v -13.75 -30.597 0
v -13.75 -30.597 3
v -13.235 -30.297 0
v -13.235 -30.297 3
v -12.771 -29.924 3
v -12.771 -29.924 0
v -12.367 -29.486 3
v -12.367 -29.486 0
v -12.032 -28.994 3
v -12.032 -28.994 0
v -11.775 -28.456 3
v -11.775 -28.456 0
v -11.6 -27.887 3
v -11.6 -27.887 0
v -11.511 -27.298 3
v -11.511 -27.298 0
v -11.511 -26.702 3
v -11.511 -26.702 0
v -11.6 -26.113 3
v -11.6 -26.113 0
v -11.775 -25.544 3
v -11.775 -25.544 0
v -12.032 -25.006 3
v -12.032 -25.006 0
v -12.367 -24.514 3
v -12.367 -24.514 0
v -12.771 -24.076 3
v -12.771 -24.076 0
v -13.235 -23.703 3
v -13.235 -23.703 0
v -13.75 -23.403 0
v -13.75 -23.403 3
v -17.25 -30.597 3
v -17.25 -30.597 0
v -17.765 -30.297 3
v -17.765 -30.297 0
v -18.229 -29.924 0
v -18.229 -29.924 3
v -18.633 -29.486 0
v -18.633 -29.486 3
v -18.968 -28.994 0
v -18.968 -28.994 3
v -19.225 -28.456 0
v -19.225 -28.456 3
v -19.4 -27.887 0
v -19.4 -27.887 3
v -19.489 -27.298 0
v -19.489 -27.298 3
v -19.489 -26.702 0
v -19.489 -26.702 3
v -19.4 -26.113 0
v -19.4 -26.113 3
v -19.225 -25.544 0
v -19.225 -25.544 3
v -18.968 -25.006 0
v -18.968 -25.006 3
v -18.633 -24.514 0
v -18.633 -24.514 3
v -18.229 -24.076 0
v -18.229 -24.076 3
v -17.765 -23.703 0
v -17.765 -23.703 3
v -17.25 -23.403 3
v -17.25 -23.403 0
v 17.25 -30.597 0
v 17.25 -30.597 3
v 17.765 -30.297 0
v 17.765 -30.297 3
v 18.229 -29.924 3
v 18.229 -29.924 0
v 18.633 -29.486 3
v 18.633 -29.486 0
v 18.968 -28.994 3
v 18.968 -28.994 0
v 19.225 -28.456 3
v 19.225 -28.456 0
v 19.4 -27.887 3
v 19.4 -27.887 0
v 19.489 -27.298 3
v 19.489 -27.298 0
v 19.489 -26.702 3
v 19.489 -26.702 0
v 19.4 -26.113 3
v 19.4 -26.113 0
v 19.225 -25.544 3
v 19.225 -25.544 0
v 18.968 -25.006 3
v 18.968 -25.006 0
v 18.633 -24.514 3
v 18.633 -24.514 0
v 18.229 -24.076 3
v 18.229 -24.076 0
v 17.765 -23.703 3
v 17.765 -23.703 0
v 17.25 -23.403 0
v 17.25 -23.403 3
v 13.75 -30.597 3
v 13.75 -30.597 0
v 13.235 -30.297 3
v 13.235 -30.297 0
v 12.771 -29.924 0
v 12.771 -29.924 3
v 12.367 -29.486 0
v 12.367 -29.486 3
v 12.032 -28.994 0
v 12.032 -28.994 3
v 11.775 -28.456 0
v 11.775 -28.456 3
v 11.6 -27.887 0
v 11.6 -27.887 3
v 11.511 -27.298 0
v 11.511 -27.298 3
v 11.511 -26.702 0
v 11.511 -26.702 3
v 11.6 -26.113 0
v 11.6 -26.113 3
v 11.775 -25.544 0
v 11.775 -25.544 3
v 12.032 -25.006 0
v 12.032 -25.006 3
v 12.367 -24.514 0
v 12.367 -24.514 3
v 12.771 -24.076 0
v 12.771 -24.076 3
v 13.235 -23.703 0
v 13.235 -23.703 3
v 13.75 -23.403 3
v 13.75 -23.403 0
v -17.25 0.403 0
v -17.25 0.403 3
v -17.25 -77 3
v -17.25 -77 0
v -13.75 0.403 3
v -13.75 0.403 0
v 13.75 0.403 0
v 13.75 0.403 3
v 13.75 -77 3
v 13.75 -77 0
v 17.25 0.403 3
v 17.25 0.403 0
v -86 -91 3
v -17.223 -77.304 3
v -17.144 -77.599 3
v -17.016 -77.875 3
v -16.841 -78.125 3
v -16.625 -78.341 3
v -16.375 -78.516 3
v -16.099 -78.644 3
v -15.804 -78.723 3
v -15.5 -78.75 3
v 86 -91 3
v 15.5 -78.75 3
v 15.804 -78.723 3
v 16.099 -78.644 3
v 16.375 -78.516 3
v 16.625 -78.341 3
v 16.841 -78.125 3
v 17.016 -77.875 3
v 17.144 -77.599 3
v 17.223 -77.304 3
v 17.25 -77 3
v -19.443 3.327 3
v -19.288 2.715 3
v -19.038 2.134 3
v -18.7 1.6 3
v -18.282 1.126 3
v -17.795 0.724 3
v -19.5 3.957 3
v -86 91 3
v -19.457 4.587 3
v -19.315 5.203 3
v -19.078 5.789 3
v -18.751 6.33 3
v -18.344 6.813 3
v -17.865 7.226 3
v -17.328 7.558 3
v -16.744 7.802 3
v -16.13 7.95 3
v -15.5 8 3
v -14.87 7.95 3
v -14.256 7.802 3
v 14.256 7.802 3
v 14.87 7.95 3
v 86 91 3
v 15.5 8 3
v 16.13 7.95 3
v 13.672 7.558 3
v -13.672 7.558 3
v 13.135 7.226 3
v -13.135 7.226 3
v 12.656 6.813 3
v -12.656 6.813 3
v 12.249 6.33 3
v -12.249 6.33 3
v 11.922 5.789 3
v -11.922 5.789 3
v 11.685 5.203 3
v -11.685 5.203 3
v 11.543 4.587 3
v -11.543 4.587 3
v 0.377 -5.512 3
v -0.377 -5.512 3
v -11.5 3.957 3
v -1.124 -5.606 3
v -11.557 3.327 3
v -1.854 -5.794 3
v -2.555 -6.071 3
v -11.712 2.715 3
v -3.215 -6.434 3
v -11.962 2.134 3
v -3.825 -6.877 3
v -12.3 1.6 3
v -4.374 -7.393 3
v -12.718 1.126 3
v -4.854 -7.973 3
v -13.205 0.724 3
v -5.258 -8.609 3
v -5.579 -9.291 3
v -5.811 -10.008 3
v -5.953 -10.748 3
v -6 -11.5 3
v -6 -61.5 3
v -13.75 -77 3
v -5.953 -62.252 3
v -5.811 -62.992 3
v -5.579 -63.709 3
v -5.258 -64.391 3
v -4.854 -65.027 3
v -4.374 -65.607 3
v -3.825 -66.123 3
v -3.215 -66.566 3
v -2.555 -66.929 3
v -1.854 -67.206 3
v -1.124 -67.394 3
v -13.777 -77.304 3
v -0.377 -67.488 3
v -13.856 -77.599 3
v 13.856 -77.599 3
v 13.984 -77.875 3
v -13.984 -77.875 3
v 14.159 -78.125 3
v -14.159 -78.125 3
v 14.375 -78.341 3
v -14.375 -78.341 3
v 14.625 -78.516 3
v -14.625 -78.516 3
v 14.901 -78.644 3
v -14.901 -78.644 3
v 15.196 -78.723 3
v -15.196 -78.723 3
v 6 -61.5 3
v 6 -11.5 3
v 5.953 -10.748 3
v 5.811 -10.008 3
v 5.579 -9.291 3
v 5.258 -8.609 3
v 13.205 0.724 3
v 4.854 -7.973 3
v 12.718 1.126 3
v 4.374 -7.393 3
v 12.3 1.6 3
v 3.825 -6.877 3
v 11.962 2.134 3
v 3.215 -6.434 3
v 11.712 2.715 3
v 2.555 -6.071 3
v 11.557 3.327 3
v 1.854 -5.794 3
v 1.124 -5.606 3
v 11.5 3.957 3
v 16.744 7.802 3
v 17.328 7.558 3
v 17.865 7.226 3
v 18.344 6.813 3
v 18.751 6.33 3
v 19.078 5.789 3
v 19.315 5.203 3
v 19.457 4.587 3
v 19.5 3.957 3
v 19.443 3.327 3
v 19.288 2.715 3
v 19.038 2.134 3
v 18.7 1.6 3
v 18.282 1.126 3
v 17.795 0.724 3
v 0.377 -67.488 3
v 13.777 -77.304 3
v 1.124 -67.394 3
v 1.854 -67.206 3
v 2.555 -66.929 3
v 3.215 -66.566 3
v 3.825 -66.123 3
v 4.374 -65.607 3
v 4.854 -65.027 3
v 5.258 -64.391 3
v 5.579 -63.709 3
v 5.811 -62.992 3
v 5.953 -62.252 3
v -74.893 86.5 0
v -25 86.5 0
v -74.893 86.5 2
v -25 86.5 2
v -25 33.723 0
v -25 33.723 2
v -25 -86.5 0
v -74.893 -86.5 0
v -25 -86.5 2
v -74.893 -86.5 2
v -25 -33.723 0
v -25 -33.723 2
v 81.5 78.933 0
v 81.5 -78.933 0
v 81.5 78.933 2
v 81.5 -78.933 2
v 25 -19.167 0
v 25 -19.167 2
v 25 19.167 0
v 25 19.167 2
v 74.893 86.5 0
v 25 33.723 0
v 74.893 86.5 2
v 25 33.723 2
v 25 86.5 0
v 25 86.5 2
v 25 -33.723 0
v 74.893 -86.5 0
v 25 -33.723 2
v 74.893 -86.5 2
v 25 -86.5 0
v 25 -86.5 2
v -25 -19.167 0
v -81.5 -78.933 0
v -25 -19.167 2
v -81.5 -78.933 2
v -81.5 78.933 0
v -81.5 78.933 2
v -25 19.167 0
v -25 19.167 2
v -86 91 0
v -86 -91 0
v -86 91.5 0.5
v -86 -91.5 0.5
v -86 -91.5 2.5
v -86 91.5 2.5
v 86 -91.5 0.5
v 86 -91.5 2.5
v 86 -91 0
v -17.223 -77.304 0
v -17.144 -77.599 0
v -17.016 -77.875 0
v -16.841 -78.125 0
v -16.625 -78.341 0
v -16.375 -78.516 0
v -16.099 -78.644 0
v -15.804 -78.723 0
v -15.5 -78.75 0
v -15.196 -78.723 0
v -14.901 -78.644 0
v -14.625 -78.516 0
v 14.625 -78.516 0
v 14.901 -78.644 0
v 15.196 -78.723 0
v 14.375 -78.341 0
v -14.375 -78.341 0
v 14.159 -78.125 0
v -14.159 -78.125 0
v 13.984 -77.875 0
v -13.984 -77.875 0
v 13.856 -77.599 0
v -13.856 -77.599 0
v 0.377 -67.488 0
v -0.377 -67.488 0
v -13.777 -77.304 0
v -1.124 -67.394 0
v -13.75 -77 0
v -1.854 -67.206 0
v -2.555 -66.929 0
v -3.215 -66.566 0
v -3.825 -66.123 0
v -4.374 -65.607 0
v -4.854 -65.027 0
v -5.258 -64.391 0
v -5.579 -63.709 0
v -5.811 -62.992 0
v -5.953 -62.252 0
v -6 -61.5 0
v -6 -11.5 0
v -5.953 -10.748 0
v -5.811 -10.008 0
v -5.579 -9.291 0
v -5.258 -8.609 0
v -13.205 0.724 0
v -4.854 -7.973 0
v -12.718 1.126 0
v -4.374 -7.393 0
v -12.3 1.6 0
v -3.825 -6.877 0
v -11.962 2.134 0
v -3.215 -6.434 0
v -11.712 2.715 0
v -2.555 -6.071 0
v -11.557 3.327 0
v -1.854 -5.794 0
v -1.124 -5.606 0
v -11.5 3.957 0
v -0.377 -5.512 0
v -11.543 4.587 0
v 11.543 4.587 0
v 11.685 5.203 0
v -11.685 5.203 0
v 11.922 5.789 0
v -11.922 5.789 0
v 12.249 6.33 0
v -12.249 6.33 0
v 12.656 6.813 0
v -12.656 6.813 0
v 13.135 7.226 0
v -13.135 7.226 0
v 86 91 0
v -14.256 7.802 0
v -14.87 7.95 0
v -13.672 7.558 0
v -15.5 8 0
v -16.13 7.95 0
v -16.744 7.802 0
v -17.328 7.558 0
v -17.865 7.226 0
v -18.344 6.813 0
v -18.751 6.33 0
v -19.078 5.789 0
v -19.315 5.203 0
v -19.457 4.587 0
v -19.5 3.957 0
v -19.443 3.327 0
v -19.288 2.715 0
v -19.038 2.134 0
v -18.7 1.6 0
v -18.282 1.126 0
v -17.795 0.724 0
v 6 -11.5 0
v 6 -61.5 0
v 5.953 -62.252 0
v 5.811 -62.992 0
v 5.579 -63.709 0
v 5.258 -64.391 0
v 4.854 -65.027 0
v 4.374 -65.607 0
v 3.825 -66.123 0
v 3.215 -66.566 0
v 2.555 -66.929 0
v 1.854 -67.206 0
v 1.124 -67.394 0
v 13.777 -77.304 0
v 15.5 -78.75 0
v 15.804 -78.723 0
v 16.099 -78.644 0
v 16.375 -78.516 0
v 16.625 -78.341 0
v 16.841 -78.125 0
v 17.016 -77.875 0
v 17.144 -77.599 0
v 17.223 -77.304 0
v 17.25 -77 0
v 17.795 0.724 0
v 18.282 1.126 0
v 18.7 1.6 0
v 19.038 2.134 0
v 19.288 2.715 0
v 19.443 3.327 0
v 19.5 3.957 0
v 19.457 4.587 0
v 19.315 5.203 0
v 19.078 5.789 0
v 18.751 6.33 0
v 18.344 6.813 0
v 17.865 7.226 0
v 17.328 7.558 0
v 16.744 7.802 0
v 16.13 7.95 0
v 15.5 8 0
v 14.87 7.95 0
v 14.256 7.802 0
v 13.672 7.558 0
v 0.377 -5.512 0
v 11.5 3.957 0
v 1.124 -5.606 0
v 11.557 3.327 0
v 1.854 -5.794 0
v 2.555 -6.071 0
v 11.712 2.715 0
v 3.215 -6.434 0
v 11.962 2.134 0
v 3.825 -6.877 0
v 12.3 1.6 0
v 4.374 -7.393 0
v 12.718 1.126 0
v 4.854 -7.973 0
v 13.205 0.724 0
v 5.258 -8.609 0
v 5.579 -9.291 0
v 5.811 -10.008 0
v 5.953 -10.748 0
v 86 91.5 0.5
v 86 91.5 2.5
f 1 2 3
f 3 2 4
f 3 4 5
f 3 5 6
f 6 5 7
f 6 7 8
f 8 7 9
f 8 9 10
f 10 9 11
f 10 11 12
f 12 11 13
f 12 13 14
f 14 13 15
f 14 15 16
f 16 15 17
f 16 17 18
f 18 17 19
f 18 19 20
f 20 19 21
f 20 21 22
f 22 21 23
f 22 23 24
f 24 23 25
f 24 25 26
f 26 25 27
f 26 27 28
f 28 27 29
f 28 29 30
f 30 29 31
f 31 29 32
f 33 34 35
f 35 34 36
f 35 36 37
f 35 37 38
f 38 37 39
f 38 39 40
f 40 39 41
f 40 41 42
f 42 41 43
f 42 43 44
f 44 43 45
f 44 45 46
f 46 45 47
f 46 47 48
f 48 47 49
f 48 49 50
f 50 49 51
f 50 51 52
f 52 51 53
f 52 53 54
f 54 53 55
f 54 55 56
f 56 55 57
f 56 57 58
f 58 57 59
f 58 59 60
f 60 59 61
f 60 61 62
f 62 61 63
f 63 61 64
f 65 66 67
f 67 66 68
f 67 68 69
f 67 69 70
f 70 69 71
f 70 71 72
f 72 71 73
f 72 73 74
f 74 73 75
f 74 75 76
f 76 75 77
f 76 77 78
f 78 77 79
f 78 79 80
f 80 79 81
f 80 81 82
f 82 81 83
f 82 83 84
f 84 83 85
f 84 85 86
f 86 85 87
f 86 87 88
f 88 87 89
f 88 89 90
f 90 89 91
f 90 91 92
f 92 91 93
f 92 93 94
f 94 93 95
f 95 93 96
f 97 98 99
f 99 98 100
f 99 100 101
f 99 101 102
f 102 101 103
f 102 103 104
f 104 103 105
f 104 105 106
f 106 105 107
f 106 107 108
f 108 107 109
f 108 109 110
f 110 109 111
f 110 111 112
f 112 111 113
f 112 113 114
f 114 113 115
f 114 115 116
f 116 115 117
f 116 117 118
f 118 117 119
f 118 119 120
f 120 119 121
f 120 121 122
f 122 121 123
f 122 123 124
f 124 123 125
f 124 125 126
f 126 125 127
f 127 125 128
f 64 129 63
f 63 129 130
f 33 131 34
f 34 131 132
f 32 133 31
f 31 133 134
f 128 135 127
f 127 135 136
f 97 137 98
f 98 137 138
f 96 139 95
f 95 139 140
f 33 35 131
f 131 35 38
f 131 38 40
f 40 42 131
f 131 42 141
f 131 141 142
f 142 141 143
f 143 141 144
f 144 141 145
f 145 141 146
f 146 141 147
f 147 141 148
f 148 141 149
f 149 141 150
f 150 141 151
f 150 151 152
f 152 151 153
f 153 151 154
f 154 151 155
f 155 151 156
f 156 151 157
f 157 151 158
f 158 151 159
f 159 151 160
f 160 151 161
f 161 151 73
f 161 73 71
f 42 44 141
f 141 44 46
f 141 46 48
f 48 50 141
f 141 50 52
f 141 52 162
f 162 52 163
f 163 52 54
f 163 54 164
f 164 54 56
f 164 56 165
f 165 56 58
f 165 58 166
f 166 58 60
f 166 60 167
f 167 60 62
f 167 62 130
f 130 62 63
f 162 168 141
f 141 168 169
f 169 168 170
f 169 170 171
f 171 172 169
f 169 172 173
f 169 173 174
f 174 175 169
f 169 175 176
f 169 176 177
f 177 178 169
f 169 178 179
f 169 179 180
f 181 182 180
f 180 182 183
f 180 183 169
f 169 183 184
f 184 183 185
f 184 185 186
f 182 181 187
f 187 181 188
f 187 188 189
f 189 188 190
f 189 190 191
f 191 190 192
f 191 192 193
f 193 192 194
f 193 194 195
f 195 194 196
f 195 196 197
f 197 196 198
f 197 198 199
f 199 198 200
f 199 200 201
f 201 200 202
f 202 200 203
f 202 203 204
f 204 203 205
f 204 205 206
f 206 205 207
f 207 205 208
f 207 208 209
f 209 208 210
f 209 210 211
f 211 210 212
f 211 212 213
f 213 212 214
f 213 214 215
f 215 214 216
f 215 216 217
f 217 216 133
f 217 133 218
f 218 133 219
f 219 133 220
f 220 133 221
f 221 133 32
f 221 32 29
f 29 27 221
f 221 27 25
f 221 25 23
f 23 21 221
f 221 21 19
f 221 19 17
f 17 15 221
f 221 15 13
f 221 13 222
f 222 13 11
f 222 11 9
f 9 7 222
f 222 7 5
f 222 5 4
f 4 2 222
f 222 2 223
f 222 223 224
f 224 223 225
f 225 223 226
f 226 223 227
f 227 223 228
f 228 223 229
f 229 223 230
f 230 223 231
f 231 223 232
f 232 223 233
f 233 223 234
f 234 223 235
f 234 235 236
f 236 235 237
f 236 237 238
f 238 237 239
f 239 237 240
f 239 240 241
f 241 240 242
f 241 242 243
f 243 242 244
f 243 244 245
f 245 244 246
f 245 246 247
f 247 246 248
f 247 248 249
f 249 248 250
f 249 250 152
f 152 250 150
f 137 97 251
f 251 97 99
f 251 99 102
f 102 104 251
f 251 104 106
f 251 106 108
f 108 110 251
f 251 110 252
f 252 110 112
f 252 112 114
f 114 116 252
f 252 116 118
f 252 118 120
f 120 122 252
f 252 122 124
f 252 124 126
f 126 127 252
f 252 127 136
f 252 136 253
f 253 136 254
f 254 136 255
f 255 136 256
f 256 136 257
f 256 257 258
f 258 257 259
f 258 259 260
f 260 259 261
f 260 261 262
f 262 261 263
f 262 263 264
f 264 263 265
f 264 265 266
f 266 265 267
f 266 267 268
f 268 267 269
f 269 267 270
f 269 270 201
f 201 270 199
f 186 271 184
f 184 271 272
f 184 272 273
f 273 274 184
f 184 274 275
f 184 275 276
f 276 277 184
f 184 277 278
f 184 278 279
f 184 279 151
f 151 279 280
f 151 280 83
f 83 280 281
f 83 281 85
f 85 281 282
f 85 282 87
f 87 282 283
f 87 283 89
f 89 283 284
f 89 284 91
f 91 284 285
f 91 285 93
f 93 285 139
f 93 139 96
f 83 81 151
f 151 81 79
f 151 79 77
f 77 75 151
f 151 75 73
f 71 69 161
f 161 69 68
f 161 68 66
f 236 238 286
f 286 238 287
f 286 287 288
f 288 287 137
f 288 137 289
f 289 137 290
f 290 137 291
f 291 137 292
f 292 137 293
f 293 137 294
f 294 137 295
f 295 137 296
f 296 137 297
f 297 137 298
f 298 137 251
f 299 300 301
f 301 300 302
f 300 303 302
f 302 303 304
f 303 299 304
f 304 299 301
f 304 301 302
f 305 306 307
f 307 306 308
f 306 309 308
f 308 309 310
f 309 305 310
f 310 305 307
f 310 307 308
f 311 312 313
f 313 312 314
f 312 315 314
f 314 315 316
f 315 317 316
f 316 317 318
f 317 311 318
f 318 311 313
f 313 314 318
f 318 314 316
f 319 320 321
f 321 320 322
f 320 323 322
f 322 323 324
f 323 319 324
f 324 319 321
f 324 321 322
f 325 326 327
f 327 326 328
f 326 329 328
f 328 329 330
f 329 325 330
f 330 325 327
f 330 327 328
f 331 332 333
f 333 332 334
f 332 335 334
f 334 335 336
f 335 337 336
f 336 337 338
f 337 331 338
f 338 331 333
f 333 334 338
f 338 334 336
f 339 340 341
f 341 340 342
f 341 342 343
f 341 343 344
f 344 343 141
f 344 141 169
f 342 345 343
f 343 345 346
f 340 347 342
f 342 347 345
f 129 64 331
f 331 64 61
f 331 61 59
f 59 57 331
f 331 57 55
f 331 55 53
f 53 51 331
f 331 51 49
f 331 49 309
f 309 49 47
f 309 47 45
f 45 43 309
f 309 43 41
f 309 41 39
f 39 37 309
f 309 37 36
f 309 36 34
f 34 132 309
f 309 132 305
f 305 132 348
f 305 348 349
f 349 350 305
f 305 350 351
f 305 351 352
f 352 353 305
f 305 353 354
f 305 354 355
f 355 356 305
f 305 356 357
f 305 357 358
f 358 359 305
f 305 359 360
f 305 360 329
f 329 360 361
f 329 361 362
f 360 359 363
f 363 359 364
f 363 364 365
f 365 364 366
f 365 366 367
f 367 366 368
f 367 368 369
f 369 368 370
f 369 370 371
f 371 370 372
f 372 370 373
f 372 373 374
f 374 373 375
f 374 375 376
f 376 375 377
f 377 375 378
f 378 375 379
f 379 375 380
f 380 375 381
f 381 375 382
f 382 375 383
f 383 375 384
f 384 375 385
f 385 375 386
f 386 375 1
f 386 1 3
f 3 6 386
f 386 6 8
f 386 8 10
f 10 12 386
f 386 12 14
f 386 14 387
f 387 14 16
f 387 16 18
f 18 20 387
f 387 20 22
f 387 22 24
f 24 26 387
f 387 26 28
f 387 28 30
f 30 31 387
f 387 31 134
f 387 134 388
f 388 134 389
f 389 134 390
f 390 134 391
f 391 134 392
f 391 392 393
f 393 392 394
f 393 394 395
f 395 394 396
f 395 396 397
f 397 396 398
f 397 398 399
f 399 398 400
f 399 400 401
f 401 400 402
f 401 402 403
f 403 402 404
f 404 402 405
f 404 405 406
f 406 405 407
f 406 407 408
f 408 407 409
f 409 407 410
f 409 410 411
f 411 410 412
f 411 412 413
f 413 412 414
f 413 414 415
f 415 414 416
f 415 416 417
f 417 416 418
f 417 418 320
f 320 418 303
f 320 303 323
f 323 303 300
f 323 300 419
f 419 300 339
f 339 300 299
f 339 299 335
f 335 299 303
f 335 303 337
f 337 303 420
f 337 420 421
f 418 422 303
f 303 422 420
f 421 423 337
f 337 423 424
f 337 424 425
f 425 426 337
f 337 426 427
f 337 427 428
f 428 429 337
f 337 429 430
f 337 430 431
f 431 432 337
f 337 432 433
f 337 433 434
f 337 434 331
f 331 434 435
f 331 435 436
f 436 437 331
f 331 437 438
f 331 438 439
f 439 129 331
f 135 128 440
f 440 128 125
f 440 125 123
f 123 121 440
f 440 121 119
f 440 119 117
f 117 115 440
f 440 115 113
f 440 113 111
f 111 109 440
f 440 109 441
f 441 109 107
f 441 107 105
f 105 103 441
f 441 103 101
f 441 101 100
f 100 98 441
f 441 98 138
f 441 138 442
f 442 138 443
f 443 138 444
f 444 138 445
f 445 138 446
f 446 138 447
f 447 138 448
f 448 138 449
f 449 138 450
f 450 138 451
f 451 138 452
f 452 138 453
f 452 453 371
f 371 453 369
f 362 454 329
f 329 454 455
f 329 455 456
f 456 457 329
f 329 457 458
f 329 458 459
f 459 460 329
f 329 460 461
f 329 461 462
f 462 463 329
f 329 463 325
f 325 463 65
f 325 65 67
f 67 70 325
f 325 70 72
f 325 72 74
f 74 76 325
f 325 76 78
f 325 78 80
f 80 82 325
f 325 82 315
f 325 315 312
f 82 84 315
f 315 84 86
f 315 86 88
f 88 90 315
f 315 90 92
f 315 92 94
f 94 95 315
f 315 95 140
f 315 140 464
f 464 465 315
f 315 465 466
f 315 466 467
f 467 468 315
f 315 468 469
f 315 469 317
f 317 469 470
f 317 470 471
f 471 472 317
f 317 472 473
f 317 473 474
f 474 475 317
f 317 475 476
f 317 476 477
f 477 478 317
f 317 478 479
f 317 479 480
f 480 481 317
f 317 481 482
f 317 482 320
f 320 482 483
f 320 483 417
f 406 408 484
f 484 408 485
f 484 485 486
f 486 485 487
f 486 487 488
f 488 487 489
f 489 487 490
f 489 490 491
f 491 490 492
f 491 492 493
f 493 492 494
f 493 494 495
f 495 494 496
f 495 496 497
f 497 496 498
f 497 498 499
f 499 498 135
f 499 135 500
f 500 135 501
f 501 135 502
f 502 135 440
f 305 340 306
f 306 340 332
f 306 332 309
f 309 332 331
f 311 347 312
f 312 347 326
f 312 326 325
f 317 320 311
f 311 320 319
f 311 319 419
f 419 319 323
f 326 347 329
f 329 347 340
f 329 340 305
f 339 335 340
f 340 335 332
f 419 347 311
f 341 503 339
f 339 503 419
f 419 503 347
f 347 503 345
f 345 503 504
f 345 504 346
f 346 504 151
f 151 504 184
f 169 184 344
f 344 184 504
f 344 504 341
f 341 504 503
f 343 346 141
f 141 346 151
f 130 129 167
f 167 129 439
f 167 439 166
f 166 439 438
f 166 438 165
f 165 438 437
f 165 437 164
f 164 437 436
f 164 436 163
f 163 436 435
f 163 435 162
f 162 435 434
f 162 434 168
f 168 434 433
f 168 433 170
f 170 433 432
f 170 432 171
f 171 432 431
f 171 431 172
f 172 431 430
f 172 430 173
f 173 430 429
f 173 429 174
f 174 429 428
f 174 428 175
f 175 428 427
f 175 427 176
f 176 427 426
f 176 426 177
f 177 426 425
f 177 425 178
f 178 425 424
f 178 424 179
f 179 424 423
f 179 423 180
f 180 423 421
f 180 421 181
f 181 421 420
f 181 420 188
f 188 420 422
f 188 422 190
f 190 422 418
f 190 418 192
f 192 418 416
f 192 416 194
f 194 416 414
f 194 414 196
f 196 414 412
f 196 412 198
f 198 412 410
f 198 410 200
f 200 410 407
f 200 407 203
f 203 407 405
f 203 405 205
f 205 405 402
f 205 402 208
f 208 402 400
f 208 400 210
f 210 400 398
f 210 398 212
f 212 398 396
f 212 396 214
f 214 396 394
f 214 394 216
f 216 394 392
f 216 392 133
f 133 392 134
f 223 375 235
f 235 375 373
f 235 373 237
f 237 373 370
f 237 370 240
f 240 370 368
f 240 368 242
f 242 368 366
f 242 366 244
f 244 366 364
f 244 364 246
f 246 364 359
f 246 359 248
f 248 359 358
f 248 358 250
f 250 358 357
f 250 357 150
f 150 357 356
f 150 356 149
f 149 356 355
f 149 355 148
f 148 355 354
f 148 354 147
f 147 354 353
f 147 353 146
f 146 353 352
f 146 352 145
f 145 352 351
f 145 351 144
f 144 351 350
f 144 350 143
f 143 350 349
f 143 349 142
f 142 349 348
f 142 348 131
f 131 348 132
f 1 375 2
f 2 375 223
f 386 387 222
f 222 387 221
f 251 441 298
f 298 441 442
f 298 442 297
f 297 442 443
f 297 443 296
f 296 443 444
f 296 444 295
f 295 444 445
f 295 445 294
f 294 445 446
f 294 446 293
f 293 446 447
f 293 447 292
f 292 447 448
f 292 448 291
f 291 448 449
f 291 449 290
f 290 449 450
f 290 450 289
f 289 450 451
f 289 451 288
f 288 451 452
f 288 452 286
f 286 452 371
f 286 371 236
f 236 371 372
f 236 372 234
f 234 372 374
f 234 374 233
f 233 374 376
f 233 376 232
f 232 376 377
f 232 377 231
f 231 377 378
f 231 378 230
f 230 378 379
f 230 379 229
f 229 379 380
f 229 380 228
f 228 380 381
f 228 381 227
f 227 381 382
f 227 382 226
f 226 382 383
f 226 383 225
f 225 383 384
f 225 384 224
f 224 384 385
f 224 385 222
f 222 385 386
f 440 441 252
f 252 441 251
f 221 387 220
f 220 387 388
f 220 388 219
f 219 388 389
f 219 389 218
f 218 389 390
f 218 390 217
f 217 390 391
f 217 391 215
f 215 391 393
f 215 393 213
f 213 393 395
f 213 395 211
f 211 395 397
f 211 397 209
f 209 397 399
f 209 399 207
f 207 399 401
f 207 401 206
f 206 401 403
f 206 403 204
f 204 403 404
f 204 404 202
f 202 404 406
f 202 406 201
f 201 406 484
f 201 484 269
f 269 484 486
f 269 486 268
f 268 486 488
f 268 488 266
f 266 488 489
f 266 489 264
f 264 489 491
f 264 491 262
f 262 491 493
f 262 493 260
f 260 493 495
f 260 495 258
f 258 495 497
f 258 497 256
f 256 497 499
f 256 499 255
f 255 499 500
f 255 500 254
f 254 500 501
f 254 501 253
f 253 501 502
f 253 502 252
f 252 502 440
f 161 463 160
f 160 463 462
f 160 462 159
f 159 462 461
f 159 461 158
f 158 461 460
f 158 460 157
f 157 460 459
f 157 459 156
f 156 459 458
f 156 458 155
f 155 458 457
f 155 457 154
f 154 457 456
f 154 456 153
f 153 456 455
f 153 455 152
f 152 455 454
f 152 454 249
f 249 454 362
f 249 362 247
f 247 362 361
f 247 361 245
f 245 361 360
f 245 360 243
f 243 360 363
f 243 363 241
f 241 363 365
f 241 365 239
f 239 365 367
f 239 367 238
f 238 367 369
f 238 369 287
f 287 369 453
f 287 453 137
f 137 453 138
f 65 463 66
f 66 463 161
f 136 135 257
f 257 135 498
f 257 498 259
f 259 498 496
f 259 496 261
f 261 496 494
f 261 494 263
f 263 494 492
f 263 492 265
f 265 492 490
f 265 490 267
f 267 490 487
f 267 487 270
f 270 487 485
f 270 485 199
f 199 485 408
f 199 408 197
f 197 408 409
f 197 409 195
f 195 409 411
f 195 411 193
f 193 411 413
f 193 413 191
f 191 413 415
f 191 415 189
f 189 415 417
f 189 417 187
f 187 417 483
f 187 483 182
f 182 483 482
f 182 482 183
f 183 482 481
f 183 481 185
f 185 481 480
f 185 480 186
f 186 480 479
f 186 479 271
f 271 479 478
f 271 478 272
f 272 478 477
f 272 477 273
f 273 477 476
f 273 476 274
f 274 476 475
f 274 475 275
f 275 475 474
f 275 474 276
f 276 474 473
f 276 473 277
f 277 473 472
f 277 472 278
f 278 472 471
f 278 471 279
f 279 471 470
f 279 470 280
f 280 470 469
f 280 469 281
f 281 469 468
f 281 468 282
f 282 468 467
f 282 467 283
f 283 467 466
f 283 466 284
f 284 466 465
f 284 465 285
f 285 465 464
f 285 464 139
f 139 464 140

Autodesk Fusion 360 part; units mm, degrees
sketch "Sketch1" plane through (0, 0, 0) normal (0, 0, 1) x (1, 0, 0)
  line L0 (86.5, 91.5) -> (-86.5, 91.5)
  line L1 (-86.5, 91.5) -> (-86.5, -91.5)
  line L2 (-86.5, -91.5) -> (86.5, -91.5)
  line L3 (86.5, -91.5) -> (86.5, 91.5)
  line L4 (86.5, 91.5) -> (-86.5, -91.5) construction
  line L5 (-86.5, 91.5) -> (86.5, -91.5) construction
  line L6 (0, -91.5) -> (0, -61.5)
  line L7 (15.5, -77) -> (-15.5, -77)
  line L8 (-15.5, -77) -> (-15.5, -46)
  line L9 (-15.5, -46) -> (15.5, -46)
  line L10 (15.5, -46) -> (15.5, -77)
  line L11 (15.5, -77) -> (-15.5, -46) construction
  line L12 (-15.5, -77) -> (15.5, -46) construction
  circle A0 centre (-15.5, -77) radius 1.75
  circle A1 centre (-15.5, -46) radius 1.75
  circle A2 centre (15.5, -46) radius 1.75
  circle A3 centre (15.5, -77) radius 1.75
  line L13 (0, -61.5) -> (0, -11.5)
  line L14 (15.5, -27) -> (-15.5, -27)
  line L15 (-15.5, -27) -> (-15.5, 4)
  line L16 (-15.5, 4) -> (15.5, 4)
  line L17 (15.5, 4) -> (15.5, -27)
  line L18 (15.5, -27) -> (-15.5, 4) construction
  line L19 (-15.5, -27) -> (15.5, 4) construction
  circle A4 centre (-15.5, 4) radius 1.75
  circle A5 centre (15.5, 4) radius 1.75
  circle A6 centre (15.5, -27) radius 1.75
  circle A7 centre (-15.5, -27) radius 1.75
  circle A8 centre (-15.5, 4) radius 4
  circle A9 centre (15.5, 4) radius 4
  circle A10 centre (0, -61.5) radius 6
  circle A11 centre (0, -11.5) radius 6
  line L20 (13.75, 4) -> (17.25, 4)
  line L21 (17.25, 4) -> (17.25, -77)
  line L22 (17.25, -77) -> (13.75, -77)
  line L23 (13.75, -77) -> (13.75, 4)
  line L24 (-13.75, 4) -> (-17.25, 4)
  line L25 (-17.25, 4) -> (-17.25, -77)
  line L26 (-17.25, -77) -> (-13.75, -77)
  line L27 (-13.75, -77) -> (-13.75, 4)
  line L28 (-6, -11.5) -> (6, -11.5)
  line L29 (6, -11.5) -> (6, -61.5)
  line L30 (6, -61.5) -> (-6, -61.5)
  line L31 (-6, -61.5) -> (-6, -11.5)
  line L32 (25, -91.5) -> (-25, -91.5)
  line L33 (-25, -91.5) -> (-25, 91.5)
  line L34 (-25, 91.5) -> (25, 91.5)
  line L35 (25, 91.5) -> (25, -91.5)
  line L36 (25, -91.5) -> (-25, 91.5) construction
  line L37 (-25, -91.5) -> (25, 91.5) construction
  line L38 (-86.5, -91.5) -> (86.5, 91.5)
  line L39 (86.5, 91.5) -> (82.8666, 94.9349)
  line L40 (82.8666, 94.9349) -> (-90.1334, -88.0651)
  line L41 (-90.1334, -88.0651) -> (-86.5, -91.5)
  line L42 (-86.5, -91.5) -> (86.5, 91.5)
  line L43 (86.5, 91.5) -> (90.1334, 88.0651)
  line L44 (90.1334, 88.0651) -> (-82.8666, -94.9349)
  line L45 (-82.8666, -94.9349) -> (-86.5, -91.5)
  line L46 (86.5, -91.5) -> (-86.5, 91.5)
  line L47 (-86.5, 91.5) -> (-82.8666, 94.9349)
  line L48 (-82.8666, 94.9349) -> (90.1334, -88.0651)
  line L49 (90.1334, -88.0651) -> (86.5, -91.5)
  line L50 (86.5, -91.5) -> (-86.5, 91.5)
  line L51 (-86.5, 91.5) -> (-90.1334, 88.0651)
  line L52 (-90.1334, 88.0651) -> (82.8666, -94.9349)
  line L53 (82.8666, -94.9349) -> (86.5, -91.5)
  line L54 (81.5, -86.5) -> (-81.5, -86.5)
  line L55 (-81.5, -86.5) -> (-81.5, 86.5)
  line L56 (-81.5, 86.5) -> (81.5, 86.5)
  line L57 (81.5, 86.5) -> (81.5, -86.5)
  line L58 (81.5, -86.5) -> (-81.5, 86.5) construction
  line L59 (-81.5, -86.5) -> (81.5, 86.5) construction
  circle A12 centre (-15.5, -27) radius 4
  circle A13 centre (15.5, -27) radius 4
  point P0 (0, -91.5)
  point P1 (0, -61.5)
  point P2 (0, -11.5)
  dimension "d1" = 173
  dimension "d2" = 183
  dimension "d3" = 30
  dimension "d4" = 31
  dimension "d5" = 31
  dimension "d6" = 3.5
  dimension "d7" = 3.5
  dimension "d8" = 3.5
  dimension "d9" = 3.5
  dimension "d10" = 50
  dimension "d11" = 31
  dimension "d12" = 31
  dimension "d13" = 3.5
  dimension "d14" = 3.5
  dimension "d15" = 3.5
  dimension "d16" = 3.5
  dimension "d17" = 8
  dimension "d18" = 8
  dimension "d19" = 12
  dimension "d20" = 12
  dimension "d21" = 3.5
  dimension "d22" = 3.5
  dimension "d31" = 50
  dimension "d32" = 5
  dimension "d33" = 5
  dimension "d34" = 5
  dimension "d35" = 5
  dimension "d36" = 163
  dimension "d37" = 173
  dimension "d42" = 8
  dimension "d43" = 8
extrude "Extrude1" add sketch "Sketch1" along normal blind 3 contours L0 L33 L34 L35 L56 | L0 L35 L40 L56 | L0 L33 L48 L56 | L0 L38 L40 L42 L56 L57 | L35 L40 L56 | L33 L35 L40 L48 L56 | L0 L46 L48 L50 L55 L56 | L33 L48 L56 | L3 L38 L42 L44 L57 | L35 L38 L40 L42 L56 L57 | L16 L35 L38 L40 L42 L48 | L1 L46 L50 L52 L55 | L33 L46 L48 L50 L55 L56 | L16 L33 L40 L46 L48 L50 | L3 L44 L48 L57 | L35 L38 L42 L44 L57 | L16 A9 L35 L38 L42 L44 | L16 L40 L48 | L1 L40 L52 L55 | L33 L46 L50 L52 L55 | L16 A8 L33 L46 L50 L52 | L3 L46 L48 L50 L57 | L35 L44 L48 L57 | A9 L21 L35 L44 L48 | L16 L38 L42 L48 | L16 L38 L42 L44 L48 | L16 L40 L46 L50 | L16 L38 L40 L42 L46 L48 L50 | L1 L38 L40 L42 L55 | L33 L40 L52 L55 | A8 L25 L33 L40 L52 | L16 L40 L46 L50 L52 | L2 L46 L50 L52 L54 L57 | L35 L46 L48 L50 L57 | L21 L35 L46 L48 L50 | L16 A9 L44 | L16 A9 L23 L44 L48 | L38 L42 L44 L46 L48 L50 | L38 L40 L42 L46 L50 L52 | L2 L38 L42 L44 L54 L55 | L33 L38 L40 L42 L55 | L25 L33 L38 L40 L42 | L16 A8 L27 L40 L52 | L16 A8 L52 | L2 L35 L52 L54 | L35 L46 L50 L52 L54 L57 | L21 L35 L46 L50 L52 A13 | L23 L44 L46 L48 L50 | A11 L38 L42 L44 L46 L50 L52 | L27 L38 L40 L42 L52 | L2 L33 L44 L54 | L33 L38 L42 L44 L54 L55 | L25 L33 L38 L42 L44 A12 | L2 L6 L32 L35 L54 | L35 L52 L54 | L6 L7 A3 L21 L35 L52 L54 A13 | A11 L23 L29 L44 L46 L50 L52 | A11 L27 L31 L38 L42 L44 L52 | L2 L6 L32 L33 L54 | L33 L44 L54 | L6 L7 A0 L25 L33 L44 L54 A12 | L21 L52 A13 | L21 L52 A13 | L25 L44 A12 | L25 L44 A12 | L14 L23 L29 L52 A13 | L14 L27 L31 L44 A12 | L6 L7 L9 A10 L27 L31 | L6 L7 L9 A10 L23 L29 | L14 L23 A13 | L9 L14 L23 L29 A13 | L14 L23 A13 | L14 L27 A12 | L9 L14 L27 L31 A12 | L14 L27 A12
chamfer "Chamfer1" distance 0.5 angle 45 2 edges at (0, -91.5, 3) (0, -91.5, 0)
chamfer "Chamfer2" distance 0.5 angle 45 2 edges at (0, 91.5, 3) (0, 91.5, 0)
extrude "Extrude2" cut 1 faces at (86.5, 30.3333, 2) along direction (-1, 0, 0) blind 0.5
extrude "Extrude3" cut 1 faces at (-86.5, -30.3333, 2) along direction (1, 0, 0) blind 0.5
extrude "Extrude5" cut sketch "Sketch1" along normal blind 2 contours L35 L40 L56 | L33 L48 L56 | L35 L44 L48 L57 | L33 L40 L52 L55 | L35 L52 L54 | L33 L44 L54
extrude "Extrude6" cut sketch "Sketch1" along normal blind 3 contours L21 L52 A13 | L21 L52 A13 | L17 L21 L52 A13 | L25 L44 A12 | L25 L44 A12 | L15 L25 L44 A12 | L17 A6 L21 L52 | A6 L21 L23 A13 | L17 L52 A13 | L15 A7 L25 L44 | A7 L25 L27 A12 | L15 L44 A12 | L14 L17 A6 | L17 A6 L23 L52 A13 | L14 L23 A13 | L14 L23 A13 | L14 L27 A12 | L15 A7 L27 L44 A12 | L14 L15 A7 | L14 L27 A12 | L14 L17 A6 | L14 L15 A7
equation "d36 = 173.000 mm - 10 mm"
equation "d37 = 183.000 mm - 10 mm"
